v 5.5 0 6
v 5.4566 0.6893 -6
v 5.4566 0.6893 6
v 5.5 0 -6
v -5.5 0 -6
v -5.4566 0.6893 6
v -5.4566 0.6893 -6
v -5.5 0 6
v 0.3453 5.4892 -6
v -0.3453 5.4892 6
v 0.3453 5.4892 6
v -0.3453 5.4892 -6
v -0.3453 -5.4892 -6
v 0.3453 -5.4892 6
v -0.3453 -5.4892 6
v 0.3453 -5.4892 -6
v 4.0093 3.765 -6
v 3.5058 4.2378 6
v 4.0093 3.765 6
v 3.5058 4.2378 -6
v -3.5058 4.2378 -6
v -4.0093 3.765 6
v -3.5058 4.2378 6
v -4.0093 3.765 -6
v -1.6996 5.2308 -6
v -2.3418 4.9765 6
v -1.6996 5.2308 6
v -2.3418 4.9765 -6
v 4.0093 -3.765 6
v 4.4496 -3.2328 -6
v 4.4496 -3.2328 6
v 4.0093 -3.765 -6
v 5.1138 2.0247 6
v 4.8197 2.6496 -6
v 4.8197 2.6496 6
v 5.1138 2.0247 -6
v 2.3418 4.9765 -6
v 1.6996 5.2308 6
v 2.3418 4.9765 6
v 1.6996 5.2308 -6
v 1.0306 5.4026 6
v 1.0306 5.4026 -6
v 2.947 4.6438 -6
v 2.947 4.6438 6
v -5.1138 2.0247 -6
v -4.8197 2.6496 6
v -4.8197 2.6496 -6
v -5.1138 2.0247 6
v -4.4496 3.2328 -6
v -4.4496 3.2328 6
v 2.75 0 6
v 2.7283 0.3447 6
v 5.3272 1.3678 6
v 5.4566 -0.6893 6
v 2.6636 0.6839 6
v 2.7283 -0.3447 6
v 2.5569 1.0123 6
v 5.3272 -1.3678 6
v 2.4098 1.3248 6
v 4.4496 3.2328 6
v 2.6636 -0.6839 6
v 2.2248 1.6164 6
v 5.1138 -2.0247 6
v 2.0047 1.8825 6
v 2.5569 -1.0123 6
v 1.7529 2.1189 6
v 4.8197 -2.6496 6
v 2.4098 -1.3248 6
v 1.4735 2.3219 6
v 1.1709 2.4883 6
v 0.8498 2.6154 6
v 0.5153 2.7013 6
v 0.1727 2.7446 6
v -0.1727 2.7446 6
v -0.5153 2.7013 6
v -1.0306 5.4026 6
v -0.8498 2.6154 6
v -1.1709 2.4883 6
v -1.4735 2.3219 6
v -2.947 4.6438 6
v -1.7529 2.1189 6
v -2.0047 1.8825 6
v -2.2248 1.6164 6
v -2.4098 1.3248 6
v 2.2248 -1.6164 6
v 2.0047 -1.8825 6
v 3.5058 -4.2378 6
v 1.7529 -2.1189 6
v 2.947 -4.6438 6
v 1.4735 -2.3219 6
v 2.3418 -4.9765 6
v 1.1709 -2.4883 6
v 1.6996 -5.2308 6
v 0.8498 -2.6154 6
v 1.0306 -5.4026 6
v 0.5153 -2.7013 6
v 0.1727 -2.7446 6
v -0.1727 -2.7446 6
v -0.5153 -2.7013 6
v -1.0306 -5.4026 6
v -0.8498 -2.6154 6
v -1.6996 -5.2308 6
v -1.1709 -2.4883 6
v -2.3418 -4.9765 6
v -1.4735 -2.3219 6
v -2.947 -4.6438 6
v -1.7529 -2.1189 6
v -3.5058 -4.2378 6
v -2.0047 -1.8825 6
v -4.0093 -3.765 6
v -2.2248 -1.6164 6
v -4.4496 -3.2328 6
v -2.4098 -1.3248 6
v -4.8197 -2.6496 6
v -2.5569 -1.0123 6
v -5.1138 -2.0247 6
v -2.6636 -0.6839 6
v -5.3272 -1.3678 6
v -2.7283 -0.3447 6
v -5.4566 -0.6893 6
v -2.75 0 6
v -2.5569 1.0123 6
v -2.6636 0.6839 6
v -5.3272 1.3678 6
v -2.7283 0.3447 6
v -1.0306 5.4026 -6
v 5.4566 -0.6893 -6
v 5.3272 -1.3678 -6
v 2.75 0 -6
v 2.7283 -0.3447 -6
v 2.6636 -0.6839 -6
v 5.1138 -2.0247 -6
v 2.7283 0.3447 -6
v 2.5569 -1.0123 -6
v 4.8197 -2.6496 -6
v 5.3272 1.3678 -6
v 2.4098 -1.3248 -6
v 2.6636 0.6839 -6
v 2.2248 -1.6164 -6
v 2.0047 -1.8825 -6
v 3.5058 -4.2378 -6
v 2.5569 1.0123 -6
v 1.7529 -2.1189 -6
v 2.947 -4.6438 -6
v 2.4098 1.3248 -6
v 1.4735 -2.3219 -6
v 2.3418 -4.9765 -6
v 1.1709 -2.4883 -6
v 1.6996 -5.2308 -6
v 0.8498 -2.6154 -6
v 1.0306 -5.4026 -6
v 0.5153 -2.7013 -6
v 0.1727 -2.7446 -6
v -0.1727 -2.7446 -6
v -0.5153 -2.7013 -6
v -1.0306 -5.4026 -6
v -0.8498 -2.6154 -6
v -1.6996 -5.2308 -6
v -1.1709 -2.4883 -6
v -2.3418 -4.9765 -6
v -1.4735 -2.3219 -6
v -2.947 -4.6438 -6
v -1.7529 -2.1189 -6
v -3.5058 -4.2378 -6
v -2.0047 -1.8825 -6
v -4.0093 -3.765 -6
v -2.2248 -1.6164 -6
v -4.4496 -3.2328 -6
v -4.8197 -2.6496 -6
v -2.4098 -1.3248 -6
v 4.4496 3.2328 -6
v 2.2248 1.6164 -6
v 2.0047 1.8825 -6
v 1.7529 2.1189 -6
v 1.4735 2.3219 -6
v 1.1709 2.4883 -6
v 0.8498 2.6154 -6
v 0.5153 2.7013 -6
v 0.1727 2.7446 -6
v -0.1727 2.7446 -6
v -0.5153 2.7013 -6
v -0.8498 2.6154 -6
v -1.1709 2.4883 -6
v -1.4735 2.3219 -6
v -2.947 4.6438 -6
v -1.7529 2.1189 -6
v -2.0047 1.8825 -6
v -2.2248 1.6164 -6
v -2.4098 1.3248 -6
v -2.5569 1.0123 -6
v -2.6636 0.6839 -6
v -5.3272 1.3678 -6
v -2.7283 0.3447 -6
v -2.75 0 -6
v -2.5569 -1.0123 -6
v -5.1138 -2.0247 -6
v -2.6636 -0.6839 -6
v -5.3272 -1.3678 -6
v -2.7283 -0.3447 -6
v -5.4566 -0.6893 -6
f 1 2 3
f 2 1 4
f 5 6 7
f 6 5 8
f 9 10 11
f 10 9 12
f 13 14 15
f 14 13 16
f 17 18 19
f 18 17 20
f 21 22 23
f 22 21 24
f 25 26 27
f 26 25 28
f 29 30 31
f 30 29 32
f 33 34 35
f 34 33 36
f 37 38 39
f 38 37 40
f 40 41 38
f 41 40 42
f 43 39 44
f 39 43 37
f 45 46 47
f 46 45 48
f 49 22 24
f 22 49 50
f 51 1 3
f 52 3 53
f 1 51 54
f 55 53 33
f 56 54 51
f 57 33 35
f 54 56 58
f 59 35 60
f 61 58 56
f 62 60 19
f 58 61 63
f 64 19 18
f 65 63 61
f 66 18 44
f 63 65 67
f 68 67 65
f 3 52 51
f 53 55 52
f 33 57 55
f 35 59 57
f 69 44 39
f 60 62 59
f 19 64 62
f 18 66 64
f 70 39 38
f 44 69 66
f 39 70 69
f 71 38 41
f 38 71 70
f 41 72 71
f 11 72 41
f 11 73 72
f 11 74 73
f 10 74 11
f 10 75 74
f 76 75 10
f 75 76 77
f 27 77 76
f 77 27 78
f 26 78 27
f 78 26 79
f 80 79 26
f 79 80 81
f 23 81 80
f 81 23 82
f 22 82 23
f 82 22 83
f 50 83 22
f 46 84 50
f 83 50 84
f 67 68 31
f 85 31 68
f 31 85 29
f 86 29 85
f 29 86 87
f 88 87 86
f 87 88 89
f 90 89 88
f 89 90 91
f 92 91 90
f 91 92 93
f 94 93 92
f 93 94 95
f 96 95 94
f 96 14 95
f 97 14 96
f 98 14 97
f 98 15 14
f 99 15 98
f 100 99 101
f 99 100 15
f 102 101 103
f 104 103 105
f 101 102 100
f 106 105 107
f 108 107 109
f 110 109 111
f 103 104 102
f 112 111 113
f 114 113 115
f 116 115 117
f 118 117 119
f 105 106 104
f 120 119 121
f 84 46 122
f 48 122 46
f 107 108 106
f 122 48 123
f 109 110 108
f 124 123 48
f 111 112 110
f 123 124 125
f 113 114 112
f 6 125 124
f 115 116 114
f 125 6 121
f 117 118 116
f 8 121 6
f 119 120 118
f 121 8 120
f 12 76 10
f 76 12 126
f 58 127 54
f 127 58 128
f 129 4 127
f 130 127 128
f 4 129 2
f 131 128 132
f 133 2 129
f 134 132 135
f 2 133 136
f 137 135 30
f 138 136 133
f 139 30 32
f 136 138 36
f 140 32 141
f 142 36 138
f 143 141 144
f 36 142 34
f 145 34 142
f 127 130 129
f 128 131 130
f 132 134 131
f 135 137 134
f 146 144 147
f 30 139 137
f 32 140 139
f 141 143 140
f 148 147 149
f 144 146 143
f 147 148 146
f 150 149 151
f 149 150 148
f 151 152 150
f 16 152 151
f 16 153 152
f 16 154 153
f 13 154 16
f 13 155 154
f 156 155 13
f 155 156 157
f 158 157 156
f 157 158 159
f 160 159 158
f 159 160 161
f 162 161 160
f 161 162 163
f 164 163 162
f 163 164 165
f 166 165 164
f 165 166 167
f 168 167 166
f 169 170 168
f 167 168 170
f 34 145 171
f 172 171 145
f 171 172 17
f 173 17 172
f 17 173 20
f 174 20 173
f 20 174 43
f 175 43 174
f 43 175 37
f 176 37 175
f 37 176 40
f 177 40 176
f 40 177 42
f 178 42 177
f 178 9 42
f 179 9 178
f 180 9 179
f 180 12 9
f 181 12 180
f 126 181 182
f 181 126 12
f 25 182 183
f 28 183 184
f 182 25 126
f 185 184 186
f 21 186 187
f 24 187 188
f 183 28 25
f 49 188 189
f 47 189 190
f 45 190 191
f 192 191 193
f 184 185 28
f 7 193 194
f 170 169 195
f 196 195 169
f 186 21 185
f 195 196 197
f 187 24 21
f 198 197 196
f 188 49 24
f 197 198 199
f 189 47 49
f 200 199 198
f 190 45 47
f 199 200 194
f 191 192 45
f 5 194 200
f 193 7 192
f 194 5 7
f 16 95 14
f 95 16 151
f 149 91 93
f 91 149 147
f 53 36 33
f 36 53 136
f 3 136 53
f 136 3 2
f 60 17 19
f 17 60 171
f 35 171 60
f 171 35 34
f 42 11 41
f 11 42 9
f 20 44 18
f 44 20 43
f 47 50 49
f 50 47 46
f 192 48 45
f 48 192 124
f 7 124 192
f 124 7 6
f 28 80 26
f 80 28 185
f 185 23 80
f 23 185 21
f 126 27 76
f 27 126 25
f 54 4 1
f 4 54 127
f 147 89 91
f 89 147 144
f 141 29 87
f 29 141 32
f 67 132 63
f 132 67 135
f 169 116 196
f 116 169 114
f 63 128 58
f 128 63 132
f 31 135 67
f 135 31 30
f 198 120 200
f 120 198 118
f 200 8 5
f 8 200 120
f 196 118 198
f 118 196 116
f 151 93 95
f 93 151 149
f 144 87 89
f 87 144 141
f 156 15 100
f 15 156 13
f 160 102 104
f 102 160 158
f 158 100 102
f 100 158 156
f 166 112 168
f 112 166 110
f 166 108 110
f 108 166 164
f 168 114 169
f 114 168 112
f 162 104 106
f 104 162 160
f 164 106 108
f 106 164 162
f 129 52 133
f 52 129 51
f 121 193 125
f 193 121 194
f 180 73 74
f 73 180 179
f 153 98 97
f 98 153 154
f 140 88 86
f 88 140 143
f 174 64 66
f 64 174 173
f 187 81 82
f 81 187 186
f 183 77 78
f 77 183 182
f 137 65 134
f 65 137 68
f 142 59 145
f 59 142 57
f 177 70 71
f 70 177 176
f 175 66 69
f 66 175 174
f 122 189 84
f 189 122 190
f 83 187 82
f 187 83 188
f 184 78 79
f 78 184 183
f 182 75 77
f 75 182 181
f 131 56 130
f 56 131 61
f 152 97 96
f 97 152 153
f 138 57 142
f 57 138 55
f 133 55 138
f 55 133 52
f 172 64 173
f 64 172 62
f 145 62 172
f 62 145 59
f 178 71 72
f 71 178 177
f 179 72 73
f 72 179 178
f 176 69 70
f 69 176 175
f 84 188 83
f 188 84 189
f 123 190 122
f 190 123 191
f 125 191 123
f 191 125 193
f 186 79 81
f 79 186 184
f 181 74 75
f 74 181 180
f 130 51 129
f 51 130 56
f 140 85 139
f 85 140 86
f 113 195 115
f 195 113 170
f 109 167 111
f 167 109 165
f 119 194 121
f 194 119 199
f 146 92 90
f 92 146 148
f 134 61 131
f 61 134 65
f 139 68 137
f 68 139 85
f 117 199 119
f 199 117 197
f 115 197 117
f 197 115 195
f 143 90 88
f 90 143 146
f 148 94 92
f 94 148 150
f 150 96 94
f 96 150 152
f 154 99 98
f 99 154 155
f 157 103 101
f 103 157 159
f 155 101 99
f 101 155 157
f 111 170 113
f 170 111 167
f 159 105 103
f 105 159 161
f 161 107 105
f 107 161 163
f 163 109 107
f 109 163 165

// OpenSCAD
$fn = 50;


difference() {
	union() {
		translate(v = [0, 0, -6.0000000000]) {
			cylinder(h = 12, r = 5.5000000000);
		}
	}
	union() {
		translate(v = [0, 0, -100.0000000000]) {
			cylinder(h = 200, r = 2.7500000000);
		}
	}
}
